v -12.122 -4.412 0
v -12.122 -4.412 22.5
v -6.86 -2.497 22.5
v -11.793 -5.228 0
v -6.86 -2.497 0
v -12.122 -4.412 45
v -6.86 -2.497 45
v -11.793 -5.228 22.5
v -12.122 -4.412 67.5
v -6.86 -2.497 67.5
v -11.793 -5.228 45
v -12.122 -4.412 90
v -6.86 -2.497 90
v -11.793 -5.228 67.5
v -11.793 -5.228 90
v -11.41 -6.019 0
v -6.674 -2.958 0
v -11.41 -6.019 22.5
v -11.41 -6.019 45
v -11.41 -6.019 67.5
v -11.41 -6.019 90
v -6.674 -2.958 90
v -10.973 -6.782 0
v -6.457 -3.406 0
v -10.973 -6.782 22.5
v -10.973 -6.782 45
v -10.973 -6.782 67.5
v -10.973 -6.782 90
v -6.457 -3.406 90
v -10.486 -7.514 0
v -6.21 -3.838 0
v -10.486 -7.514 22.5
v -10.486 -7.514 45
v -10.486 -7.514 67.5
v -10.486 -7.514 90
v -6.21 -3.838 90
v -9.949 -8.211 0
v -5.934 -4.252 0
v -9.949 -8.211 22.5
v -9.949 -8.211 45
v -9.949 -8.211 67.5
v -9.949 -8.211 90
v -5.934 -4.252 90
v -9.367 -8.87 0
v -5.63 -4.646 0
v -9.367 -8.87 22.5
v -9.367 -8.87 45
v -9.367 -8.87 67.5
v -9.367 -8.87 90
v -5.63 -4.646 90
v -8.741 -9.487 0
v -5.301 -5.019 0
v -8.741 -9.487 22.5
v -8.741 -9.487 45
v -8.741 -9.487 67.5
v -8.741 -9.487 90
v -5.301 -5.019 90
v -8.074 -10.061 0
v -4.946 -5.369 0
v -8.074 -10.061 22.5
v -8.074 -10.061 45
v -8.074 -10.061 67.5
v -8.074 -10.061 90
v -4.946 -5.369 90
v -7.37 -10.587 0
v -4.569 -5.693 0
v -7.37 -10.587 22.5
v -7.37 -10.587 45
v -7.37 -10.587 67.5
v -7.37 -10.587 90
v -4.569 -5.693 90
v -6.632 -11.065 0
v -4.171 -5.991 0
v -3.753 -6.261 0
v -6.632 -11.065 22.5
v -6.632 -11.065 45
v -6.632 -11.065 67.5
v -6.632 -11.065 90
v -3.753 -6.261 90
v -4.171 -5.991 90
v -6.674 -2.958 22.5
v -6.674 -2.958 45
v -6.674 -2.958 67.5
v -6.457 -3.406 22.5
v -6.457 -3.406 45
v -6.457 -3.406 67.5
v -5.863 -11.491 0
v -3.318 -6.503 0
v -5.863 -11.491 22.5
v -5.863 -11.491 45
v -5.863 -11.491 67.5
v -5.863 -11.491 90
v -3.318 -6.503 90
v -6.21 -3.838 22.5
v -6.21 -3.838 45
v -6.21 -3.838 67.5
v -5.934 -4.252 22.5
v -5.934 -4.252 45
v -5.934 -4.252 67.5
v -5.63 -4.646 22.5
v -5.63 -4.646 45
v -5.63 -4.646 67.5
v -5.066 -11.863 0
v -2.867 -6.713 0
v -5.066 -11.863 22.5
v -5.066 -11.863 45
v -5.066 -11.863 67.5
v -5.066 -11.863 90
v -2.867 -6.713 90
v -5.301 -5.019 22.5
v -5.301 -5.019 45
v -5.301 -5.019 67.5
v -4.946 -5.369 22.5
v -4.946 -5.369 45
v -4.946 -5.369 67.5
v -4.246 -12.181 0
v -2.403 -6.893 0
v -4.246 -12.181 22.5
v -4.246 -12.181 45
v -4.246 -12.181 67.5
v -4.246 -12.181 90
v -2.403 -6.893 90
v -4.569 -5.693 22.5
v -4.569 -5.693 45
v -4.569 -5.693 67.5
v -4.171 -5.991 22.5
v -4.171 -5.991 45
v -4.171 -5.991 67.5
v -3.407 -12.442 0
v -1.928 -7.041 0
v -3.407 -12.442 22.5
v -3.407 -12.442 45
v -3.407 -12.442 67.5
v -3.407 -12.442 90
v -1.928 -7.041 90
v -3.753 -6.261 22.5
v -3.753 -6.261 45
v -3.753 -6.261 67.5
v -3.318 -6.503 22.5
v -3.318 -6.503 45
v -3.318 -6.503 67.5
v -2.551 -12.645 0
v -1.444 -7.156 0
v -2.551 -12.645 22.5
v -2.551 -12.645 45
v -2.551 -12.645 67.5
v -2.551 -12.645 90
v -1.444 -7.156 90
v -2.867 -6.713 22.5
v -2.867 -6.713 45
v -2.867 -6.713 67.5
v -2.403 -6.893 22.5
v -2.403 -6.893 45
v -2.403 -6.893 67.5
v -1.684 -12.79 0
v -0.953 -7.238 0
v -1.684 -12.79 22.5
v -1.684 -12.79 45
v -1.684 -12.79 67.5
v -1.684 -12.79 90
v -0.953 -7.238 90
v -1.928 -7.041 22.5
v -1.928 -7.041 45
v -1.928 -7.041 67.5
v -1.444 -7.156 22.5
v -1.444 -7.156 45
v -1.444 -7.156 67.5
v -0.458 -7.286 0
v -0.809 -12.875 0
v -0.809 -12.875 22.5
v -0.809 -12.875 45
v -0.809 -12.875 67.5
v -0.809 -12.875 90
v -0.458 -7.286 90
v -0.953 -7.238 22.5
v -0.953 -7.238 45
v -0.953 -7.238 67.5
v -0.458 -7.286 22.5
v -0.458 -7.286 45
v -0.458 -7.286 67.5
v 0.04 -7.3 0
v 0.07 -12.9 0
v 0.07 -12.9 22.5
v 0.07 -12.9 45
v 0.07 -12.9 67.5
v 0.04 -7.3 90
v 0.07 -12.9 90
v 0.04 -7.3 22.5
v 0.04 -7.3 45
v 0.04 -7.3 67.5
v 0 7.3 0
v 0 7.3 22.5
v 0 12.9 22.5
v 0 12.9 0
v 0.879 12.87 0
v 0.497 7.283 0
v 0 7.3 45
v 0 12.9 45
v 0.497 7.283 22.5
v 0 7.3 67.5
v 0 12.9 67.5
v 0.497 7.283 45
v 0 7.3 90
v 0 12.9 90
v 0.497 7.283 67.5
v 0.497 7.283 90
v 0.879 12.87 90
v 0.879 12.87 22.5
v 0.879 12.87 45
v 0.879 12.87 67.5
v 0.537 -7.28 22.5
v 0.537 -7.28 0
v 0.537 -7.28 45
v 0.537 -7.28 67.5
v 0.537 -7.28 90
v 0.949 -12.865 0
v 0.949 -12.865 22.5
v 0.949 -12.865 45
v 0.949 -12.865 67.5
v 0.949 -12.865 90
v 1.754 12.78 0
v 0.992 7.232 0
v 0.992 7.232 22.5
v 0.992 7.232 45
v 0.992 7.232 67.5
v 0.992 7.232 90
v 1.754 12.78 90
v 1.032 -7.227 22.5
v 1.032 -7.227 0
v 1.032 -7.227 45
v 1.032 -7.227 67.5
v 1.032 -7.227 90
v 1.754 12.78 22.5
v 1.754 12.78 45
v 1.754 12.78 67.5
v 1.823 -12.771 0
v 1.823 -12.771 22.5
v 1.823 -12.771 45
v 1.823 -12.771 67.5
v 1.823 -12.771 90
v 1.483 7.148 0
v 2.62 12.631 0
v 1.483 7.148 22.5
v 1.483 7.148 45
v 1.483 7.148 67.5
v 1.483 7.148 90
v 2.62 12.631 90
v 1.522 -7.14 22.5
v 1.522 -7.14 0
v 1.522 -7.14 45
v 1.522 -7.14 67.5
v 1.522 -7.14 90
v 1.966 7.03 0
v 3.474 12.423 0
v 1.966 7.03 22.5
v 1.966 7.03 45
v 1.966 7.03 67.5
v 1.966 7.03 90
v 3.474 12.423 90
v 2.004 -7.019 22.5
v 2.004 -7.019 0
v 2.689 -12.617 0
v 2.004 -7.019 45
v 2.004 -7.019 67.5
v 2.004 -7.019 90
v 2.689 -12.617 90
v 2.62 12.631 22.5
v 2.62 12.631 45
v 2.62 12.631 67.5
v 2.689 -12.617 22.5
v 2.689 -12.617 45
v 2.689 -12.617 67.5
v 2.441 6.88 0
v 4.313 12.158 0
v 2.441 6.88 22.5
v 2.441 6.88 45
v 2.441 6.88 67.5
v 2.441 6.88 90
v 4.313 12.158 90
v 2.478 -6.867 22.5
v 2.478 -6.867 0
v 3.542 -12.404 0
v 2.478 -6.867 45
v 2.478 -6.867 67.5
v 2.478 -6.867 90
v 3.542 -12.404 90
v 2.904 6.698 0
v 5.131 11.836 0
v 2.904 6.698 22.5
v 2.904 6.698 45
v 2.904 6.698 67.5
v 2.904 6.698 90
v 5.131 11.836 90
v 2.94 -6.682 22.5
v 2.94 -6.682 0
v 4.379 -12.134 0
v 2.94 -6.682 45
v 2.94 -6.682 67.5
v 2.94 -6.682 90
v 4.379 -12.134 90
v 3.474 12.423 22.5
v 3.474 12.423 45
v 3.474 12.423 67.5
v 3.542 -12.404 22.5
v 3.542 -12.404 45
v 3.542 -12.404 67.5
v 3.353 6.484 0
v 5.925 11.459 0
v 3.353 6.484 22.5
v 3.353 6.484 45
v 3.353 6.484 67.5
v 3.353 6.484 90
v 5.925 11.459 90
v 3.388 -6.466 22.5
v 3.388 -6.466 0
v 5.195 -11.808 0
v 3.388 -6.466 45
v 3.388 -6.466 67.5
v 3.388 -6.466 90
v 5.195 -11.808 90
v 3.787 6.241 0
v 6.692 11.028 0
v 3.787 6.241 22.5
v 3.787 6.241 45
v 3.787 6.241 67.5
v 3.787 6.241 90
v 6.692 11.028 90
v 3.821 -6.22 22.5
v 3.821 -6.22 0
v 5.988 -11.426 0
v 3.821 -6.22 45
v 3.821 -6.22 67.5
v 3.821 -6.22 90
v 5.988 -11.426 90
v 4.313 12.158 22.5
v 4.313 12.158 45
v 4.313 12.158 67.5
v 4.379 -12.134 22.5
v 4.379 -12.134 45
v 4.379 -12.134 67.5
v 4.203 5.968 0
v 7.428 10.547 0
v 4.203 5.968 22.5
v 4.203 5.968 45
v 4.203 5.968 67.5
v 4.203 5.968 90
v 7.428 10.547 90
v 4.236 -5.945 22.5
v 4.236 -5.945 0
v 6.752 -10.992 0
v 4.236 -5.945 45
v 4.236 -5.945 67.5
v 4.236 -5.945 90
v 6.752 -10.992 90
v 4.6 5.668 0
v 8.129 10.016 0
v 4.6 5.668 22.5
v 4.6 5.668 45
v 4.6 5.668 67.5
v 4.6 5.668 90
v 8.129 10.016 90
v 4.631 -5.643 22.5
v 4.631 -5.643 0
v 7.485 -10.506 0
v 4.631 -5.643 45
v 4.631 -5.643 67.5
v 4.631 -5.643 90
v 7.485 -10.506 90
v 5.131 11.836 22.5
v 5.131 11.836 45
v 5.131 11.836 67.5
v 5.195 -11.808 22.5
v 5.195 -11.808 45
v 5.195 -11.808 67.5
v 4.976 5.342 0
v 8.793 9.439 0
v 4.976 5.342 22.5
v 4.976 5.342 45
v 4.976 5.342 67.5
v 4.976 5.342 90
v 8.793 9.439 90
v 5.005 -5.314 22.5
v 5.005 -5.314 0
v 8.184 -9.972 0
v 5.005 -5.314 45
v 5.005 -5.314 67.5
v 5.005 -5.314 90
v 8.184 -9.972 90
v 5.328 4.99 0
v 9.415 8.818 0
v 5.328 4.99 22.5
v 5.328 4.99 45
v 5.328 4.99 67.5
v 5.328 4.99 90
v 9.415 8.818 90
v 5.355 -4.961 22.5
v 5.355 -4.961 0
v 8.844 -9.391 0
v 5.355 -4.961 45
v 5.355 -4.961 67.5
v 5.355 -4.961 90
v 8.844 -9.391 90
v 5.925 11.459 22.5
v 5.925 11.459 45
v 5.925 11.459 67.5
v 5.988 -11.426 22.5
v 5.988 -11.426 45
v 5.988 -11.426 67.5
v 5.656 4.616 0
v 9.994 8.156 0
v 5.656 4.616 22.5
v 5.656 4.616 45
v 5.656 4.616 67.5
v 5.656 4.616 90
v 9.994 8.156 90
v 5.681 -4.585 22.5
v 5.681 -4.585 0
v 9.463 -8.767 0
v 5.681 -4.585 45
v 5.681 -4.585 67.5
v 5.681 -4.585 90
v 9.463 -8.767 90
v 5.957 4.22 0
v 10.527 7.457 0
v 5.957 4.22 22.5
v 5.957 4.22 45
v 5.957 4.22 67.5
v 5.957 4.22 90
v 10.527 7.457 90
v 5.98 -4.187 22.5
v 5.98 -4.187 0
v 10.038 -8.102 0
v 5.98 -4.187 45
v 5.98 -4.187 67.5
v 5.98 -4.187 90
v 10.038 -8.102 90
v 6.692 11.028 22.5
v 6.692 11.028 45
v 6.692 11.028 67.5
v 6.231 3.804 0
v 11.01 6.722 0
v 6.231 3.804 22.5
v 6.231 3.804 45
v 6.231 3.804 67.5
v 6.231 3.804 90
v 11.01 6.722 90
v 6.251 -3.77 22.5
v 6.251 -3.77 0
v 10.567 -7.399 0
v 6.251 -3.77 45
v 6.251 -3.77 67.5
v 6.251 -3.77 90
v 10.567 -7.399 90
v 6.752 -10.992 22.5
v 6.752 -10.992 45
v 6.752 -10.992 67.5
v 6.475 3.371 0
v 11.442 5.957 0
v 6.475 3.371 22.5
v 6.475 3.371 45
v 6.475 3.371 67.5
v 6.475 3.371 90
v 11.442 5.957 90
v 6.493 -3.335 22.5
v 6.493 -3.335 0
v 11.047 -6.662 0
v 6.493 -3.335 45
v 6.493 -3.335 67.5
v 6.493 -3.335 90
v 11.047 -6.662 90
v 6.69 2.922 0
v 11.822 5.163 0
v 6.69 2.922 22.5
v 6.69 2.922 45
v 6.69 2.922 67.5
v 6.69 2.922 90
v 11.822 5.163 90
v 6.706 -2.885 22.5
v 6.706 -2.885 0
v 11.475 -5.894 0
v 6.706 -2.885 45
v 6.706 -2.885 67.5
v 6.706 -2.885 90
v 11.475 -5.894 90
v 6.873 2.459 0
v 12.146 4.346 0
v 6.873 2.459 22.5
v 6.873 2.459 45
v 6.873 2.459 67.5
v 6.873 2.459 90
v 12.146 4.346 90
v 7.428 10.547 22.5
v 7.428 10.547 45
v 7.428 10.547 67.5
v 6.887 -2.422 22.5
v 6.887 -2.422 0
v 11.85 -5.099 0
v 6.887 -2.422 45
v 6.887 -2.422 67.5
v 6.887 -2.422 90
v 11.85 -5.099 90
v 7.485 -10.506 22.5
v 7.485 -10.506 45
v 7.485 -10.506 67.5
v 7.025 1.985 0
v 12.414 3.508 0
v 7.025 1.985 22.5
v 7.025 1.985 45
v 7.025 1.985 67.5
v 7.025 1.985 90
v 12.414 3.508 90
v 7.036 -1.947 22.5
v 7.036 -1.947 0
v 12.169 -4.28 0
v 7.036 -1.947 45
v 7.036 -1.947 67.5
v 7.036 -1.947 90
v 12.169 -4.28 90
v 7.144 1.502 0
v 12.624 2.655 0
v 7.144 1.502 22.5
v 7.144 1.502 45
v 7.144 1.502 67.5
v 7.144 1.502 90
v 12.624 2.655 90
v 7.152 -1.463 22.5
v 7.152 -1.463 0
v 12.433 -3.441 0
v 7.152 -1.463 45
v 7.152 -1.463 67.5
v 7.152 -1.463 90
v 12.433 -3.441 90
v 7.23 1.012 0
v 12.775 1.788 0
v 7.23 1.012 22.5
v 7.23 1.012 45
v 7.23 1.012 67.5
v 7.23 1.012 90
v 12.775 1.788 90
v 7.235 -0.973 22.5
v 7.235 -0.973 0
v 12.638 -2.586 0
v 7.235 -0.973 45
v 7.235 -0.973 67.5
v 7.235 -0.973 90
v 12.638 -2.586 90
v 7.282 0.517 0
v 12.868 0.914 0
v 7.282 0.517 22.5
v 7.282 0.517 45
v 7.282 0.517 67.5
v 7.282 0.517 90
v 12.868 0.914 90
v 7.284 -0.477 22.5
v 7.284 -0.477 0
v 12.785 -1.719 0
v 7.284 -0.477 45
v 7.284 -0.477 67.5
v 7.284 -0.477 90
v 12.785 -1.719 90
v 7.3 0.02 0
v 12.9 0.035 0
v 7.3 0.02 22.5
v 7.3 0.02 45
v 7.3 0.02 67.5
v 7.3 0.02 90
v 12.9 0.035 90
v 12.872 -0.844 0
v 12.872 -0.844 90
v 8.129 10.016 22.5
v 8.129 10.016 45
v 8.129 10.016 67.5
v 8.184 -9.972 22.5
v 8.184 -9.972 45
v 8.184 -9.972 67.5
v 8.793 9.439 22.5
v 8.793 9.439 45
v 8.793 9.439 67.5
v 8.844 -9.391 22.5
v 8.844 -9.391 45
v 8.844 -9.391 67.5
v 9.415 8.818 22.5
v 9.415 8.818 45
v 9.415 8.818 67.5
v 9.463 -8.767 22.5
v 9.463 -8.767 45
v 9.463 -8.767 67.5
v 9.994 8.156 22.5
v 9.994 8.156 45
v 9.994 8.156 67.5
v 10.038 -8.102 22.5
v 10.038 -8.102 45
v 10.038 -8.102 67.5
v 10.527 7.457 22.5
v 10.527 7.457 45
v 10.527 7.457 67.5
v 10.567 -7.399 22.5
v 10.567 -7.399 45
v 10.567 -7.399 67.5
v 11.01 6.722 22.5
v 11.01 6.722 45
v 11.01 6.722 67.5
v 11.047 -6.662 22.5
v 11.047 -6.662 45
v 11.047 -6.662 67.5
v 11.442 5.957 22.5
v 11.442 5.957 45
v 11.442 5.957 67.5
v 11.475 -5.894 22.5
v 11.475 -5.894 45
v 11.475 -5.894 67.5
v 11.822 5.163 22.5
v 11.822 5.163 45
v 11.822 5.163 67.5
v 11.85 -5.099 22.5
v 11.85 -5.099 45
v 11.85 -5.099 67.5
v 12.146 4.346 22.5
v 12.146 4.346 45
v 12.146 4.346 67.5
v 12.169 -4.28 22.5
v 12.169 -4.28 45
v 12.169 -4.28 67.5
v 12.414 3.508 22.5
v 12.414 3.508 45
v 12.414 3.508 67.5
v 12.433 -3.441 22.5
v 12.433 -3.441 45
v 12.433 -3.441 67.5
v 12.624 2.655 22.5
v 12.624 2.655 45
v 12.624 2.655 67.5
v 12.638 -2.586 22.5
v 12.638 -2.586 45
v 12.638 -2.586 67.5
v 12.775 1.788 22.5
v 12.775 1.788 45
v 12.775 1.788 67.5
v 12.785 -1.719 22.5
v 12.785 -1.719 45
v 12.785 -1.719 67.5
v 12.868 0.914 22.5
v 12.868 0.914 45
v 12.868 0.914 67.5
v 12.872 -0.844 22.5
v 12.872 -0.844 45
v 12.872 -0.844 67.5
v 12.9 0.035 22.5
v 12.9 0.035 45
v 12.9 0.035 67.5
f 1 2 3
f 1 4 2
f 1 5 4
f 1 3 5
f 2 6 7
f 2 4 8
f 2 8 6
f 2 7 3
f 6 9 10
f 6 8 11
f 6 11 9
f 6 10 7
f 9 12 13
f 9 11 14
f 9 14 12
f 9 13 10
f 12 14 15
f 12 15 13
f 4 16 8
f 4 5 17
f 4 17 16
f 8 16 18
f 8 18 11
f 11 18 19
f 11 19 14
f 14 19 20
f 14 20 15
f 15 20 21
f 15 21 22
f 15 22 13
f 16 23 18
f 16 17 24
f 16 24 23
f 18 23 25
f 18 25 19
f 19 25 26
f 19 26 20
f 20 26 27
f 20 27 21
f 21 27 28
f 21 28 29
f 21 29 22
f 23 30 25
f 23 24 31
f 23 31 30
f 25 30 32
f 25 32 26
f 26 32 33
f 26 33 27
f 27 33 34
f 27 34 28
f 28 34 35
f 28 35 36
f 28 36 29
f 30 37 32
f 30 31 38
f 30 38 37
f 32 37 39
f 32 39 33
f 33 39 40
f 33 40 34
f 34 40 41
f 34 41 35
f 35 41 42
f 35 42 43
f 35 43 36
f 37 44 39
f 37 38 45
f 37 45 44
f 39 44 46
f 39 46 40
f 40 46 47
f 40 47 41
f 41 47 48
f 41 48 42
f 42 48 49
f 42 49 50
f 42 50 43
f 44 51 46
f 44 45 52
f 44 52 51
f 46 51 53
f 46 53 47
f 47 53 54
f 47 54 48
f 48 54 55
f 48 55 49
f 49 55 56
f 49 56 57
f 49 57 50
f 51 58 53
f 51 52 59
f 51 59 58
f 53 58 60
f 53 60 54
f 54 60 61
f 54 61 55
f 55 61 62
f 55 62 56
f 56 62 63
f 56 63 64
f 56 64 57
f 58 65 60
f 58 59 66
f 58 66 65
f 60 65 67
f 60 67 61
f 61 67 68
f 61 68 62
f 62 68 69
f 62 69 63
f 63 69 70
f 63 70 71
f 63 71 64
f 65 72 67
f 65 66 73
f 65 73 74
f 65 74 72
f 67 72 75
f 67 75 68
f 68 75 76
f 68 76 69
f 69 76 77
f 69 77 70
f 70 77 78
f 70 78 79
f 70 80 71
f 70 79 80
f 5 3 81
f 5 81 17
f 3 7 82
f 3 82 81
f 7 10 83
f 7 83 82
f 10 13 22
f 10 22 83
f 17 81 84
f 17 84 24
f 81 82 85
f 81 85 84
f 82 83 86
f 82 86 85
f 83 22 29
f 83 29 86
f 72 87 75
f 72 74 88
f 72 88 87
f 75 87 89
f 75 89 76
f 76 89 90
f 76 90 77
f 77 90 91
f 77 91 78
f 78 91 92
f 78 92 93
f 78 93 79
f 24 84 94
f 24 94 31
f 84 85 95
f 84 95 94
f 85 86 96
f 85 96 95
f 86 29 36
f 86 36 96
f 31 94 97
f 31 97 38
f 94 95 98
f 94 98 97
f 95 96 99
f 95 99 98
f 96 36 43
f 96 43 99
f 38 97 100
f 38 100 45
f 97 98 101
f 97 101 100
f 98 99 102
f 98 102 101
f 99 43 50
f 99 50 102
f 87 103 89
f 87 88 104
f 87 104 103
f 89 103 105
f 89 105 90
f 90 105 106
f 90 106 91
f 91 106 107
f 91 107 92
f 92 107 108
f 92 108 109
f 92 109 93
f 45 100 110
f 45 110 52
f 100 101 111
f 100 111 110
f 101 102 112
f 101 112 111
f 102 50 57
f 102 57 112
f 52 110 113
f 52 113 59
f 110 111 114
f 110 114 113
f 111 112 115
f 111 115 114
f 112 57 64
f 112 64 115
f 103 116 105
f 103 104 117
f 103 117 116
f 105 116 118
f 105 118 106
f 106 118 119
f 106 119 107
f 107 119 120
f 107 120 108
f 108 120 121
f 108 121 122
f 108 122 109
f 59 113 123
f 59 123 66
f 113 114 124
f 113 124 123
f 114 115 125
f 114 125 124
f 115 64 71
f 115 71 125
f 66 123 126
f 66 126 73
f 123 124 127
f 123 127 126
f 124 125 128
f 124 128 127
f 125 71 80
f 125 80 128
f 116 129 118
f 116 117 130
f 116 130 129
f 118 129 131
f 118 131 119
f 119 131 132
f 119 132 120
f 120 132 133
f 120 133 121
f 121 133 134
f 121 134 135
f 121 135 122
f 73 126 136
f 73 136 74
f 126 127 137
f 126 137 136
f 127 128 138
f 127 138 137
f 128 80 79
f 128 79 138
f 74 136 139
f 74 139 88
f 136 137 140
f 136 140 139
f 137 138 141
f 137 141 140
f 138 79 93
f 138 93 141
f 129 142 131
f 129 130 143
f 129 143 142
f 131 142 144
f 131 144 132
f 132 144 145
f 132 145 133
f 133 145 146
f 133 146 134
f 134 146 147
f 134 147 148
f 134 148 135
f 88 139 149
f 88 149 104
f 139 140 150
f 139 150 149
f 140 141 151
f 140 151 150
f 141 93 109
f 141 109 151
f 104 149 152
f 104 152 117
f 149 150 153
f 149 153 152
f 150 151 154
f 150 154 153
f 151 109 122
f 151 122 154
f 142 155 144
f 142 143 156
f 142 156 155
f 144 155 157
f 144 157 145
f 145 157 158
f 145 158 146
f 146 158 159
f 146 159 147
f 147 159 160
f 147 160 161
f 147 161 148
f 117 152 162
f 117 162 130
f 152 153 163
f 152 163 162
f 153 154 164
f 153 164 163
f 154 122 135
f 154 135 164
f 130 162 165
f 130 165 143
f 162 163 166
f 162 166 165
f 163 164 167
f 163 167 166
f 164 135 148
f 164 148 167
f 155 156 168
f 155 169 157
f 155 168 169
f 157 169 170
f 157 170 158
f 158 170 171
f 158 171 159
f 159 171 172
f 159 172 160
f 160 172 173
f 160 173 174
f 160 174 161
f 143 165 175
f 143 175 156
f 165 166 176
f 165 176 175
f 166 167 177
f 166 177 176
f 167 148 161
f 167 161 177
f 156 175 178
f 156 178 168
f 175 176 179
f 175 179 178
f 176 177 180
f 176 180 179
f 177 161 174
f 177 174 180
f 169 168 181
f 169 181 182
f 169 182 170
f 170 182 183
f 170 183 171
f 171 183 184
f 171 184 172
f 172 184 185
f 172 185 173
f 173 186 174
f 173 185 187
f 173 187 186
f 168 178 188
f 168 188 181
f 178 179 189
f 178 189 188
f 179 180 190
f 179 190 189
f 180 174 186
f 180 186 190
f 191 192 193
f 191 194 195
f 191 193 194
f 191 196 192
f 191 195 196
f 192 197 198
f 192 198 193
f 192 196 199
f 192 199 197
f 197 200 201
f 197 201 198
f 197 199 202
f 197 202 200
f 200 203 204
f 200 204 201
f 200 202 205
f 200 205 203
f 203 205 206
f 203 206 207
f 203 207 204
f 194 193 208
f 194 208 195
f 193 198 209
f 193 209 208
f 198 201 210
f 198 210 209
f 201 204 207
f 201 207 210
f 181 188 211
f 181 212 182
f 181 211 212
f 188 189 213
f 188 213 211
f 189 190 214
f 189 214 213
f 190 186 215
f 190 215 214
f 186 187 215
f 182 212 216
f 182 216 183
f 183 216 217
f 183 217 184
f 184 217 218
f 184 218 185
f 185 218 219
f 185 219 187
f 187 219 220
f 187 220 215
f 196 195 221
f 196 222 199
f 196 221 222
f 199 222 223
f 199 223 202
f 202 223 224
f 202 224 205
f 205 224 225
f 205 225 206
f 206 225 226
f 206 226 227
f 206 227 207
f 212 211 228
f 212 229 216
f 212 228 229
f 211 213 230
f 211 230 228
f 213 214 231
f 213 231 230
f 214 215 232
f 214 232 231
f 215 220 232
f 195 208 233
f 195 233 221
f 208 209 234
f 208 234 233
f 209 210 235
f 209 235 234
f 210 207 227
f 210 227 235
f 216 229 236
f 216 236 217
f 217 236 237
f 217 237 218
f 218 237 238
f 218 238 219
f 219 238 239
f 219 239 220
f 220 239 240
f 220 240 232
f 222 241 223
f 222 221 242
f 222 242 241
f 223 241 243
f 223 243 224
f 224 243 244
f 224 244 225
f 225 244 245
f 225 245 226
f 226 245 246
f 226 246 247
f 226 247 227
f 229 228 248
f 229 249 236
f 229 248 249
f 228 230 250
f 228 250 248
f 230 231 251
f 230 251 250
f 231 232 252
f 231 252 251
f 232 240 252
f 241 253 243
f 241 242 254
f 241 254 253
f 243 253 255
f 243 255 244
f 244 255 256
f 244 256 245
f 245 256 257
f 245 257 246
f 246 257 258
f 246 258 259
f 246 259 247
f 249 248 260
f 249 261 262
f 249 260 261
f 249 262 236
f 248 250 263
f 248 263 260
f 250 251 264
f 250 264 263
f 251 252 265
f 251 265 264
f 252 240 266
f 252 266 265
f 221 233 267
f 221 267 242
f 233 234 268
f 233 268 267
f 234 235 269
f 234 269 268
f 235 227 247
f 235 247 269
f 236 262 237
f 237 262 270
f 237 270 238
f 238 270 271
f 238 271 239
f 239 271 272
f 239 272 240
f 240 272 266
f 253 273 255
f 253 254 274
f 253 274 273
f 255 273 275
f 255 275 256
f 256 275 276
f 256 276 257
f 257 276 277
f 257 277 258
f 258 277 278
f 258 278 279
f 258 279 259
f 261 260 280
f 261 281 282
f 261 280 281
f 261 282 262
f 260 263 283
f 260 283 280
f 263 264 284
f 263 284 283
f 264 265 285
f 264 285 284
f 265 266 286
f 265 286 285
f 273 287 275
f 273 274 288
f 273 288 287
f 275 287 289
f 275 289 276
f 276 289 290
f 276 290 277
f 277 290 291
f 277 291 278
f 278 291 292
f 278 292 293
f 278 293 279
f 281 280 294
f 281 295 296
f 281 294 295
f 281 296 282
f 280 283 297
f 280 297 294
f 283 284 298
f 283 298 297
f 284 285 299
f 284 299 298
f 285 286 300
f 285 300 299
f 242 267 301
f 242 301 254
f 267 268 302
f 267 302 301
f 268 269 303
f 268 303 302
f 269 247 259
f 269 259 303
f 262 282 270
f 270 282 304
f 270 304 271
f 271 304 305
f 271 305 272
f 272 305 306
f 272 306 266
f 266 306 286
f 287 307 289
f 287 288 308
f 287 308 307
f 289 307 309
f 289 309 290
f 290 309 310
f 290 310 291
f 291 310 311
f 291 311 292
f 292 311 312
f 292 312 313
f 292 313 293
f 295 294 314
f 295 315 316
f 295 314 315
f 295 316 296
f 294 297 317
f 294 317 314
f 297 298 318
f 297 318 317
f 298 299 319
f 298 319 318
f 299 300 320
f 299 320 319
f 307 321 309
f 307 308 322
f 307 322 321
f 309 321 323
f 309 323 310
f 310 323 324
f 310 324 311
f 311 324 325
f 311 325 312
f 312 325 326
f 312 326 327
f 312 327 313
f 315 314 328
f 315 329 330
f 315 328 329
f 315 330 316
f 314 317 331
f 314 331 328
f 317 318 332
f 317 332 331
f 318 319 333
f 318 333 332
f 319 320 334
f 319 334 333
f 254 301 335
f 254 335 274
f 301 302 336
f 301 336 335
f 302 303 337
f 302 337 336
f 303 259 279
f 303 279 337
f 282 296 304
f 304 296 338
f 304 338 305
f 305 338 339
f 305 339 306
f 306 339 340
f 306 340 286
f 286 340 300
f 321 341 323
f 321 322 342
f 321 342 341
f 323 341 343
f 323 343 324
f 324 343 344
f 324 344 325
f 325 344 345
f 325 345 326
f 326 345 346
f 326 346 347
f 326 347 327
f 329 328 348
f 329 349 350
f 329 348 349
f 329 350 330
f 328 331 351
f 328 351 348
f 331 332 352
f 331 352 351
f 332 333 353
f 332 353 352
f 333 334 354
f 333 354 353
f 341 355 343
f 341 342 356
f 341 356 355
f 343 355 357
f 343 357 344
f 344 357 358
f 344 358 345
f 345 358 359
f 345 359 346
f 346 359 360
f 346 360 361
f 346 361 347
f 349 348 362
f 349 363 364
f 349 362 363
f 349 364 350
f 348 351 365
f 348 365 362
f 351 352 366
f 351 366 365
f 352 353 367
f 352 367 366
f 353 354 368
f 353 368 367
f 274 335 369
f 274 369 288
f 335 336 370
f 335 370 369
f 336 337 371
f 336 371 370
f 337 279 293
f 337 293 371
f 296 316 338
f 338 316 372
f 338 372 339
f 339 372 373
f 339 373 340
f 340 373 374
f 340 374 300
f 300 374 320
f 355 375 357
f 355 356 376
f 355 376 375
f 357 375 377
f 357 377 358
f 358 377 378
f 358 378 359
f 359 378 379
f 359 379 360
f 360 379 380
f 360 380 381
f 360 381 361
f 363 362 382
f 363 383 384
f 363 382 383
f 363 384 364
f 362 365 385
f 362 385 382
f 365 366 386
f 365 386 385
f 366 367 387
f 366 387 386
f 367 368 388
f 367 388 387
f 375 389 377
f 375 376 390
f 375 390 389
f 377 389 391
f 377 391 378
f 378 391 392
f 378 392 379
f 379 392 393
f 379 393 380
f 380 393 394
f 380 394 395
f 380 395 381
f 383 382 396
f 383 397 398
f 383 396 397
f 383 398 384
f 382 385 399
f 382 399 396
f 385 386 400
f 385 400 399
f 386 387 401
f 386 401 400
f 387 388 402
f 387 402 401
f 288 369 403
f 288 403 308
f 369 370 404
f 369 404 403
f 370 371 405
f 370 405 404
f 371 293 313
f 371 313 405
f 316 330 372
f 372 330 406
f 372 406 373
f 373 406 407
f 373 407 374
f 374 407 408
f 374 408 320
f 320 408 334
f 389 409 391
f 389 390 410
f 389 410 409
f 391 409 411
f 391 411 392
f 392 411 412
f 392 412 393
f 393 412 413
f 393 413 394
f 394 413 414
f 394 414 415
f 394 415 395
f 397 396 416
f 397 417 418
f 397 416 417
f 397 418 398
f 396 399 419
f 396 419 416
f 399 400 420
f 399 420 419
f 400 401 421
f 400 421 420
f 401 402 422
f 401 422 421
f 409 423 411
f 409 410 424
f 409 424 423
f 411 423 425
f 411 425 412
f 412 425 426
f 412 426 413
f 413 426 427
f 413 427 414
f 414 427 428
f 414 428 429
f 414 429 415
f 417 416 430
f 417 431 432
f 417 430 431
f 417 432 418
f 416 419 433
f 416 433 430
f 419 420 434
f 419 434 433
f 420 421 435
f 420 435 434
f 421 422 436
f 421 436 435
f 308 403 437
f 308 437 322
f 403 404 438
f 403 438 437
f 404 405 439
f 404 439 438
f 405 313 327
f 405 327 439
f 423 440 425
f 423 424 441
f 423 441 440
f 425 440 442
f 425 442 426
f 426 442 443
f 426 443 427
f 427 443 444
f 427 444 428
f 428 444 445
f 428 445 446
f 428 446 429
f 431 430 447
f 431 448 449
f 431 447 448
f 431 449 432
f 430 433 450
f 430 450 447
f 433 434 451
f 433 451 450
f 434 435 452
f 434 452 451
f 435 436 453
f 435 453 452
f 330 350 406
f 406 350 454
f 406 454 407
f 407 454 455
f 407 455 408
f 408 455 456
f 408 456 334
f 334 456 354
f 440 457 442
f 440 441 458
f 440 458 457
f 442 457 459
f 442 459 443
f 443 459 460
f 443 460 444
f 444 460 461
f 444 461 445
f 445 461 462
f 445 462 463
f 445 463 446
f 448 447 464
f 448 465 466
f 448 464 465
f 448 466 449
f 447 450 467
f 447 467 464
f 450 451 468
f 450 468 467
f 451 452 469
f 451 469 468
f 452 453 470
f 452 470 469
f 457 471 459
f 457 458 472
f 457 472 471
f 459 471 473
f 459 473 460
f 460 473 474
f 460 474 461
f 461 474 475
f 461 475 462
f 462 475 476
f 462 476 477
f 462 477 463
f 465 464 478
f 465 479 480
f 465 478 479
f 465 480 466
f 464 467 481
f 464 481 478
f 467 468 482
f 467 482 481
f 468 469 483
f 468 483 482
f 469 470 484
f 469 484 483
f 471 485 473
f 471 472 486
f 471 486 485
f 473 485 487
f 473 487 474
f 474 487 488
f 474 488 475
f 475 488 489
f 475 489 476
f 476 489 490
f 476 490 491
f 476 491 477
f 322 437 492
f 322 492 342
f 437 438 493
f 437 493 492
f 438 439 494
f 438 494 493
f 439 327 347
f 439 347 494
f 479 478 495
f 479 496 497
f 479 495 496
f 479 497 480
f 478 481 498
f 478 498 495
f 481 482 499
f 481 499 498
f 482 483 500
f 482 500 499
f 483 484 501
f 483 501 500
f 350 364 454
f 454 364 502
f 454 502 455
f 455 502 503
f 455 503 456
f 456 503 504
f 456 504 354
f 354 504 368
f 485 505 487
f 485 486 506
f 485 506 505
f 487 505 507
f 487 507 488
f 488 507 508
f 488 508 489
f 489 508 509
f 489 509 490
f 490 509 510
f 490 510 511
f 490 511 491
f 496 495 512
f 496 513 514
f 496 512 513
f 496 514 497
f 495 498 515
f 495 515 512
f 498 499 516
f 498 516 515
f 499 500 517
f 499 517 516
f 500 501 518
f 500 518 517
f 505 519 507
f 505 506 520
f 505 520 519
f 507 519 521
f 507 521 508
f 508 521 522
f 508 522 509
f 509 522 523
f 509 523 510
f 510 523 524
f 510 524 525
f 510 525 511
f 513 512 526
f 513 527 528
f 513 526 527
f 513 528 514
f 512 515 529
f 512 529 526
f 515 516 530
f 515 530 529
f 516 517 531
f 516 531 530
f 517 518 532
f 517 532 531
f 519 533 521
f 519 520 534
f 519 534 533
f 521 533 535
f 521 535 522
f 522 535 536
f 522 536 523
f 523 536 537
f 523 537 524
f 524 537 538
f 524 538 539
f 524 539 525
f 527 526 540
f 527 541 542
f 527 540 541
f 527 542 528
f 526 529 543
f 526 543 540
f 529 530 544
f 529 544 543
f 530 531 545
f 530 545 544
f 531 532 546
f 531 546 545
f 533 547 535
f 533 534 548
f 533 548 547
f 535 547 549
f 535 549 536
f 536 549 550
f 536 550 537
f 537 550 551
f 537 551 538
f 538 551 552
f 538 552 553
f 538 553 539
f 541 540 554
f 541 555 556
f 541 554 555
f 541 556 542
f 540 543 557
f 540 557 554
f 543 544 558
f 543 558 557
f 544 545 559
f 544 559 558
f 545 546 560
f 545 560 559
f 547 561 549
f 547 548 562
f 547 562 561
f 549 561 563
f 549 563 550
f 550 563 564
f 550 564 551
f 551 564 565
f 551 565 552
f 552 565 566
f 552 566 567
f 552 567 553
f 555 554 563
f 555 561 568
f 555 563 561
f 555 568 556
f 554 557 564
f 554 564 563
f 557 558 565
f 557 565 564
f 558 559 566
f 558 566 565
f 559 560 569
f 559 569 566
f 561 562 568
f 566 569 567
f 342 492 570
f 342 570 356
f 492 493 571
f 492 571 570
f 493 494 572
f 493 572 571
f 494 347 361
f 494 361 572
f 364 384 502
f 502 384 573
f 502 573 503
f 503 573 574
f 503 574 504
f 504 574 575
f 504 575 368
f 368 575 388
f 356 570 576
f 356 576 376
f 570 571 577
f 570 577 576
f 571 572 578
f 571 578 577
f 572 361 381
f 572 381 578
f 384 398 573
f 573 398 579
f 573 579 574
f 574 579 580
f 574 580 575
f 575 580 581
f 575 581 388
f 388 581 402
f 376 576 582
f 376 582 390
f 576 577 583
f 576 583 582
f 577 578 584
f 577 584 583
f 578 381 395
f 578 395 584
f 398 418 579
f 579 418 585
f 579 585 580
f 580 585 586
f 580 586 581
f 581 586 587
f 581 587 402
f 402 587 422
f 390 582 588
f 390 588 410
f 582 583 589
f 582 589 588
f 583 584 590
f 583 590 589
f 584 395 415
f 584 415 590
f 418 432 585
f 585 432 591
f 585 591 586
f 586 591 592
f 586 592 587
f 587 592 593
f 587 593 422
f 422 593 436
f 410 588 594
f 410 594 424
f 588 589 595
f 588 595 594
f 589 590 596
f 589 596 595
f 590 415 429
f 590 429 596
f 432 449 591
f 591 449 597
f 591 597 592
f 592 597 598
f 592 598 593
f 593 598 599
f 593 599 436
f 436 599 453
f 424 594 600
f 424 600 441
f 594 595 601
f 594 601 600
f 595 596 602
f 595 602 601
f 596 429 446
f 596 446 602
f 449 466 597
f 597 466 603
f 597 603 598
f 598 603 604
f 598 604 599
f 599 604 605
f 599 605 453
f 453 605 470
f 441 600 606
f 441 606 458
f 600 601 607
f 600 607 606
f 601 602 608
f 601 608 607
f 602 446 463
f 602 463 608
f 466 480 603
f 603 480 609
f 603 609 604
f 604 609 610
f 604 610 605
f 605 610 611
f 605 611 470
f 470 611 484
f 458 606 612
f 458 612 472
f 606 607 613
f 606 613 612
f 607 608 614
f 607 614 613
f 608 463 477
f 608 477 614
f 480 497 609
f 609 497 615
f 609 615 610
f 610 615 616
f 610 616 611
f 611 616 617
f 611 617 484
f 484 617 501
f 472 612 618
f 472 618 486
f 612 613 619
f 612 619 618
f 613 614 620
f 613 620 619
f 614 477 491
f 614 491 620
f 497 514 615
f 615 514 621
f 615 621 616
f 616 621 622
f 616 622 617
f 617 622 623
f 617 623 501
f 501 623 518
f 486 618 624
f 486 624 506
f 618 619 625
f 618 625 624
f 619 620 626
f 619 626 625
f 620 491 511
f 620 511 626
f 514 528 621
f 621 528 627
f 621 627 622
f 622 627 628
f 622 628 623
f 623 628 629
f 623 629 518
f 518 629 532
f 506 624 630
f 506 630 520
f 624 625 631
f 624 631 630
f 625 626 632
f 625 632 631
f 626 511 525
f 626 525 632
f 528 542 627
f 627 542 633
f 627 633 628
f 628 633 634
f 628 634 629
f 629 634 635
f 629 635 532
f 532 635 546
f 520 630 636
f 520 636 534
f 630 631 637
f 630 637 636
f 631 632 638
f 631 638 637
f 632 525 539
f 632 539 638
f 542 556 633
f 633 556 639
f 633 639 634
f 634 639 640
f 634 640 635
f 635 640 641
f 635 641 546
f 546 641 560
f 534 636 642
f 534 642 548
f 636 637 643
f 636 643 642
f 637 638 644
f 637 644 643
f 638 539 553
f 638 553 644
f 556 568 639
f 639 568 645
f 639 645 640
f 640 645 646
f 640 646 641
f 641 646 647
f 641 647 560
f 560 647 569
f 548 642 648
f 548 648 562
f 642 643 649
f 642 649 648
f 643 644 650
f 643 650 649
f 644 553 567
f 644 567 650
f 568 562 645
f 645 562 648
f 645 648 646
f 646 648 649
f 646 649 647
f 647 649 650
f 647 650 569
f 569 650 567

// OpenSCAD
// Start: lazy_union
default_5_default_5();
// End: lazy_union

// Modules.

// 'PartMaterial undef-default - default 5.0'
module default_5_default_5() {
  // 'None : _combine_solids_and_holes'
  union() {
    // 'default : _combine_solids_and_holes'
    union() {
      // 'adapter : _combine_solids_and_holes'
      union() {
        // 'adapter'
        linear_extrude(height=90.0, twist=0.0, slices=4, scale=[1.0, 1.0], $fn=64) {
          polygon(points=[[0.0, 7.3], [0.0, 12.9], [0.8788011574509034, 12.870031411215086], [1.753519147380663, 12.780264887699683], [2.6200897738601423, 12.631117511008815], [3.474486695996615, 12.423282263530139], [4.312740135492629, 12.157724808684849], [5.130955321398444, 11.835679004172638], [5.9253305863584025, 11.458641169107514], [6.692175030270725, 11.028363131681012], [7.427925669290204, 10.54684408965543], [8.129163990494508, 10.016321321505586], [8.792631835296289, 9.43925979136787], [9.41524653780208, 8.818340696095039], [9.99411524778074, 8.156449007630497], [10.526548371692767, 7.456660068583812], [11.01007206932948, 6.722225303288403], [11.442439747999058, 5.956557110731939], [11.821642500854074, 5.163213009551383], [12.145918440860967, 4.345879108759641], [12.41376088704317, 3.508352981003652], [12.623925364962105, 2.654526017929833], [12.775435388909877, 1.7883653496389258], [12.867586998947806, 0.9138954122378634], [12.89995203171045, 0.03517924913109632], [12.872380109777986, -0.8437003670688447], [12.78499934037373, -1.718659904298493], [12.63821572014047, -2.585634044329223], [12.432711248761176, -3.4405945714261863], [12.169440760188746, -4.27956908861824], [11.849627486207872, -5.098659474617511], [11.474757372941946, -5.894059995632422], [11.046572176712237, -6.662074987921334], [10.567061371327997, -7.399136028928491], [10.038452904408516, -8.101818517220208], [9.463202845686093, -8.766857584185946], [8.843983975386836, -9.391163263573945], [8.183673365711032, -9.971834848379304], [7.485339013113202, -10.506174368378124], [6.752225583492163, -10.991699125687253], [5.987739336523119, -11.426153230105646], [5.195432299177717, -11.807518080640866], [4.378985761966583, -12.134021744520401], [3.542193174585631, -12.404147190110208], [2.6889425204378736, -12.616639335487926], [1.8231982519240277, -12.770510879921021], [0.948982870435713, -12.865046891155105], [0.0703582366360836, -12.899808127198538], [-0.8085933021343022, -12.874633077169367], [-1.683787879638663, -12.789638711722155], [-2.551159085582411, -12.645219939568086], [-3.4066768593462027, -12.442047772613442], [-4.246366214827694, -12.181066208241786], [-5.066325709391002, -11.863487843225691], [-5.862745571111641, -11.490788239647046], [-6.631925400092554, -11.064699069003513], [-7.370291361605623, -10.587200066355672], [-8.074412791174359, -10.060509831898178], [-8.74101813444567, -9.487075522693596], [-9.367010147789433, -8.869561482464047], [-9.949480288999363, -8.21083686227008], [-10.48572223123183, -7.513962289594658], [-10.973244437392887, -6.782175647771595], [-11.409781736549197, -6.018877031831468], [-11.793305848575544, -5.227612950664375], [-12.122034808138217, -4.4120598489011345], [-6.8597561317371305, -2.496747046277387], [-6.673731216635773, -2.95826159223643], [-6.456698192000708, -3.4060311885557955], [-6.20966545681923, -3.837975366568425], [-5.933780797518789, -4.2520871871349595], [-5.630326055015146, -4.646442565470664], [-5.300711168904098, -5.019209211006786], [-4.946467626469255, -5.368655140749089], [-4.569241346943629, -5.69315672657804], [-4.170785034086906, -5.991206239100495], [-3.752950032610516, -6.261418853001989], [-3.3176777262879833, -6.502539081350655], [-2.866990517717388, -6.713446608957176], [-2.402982431646681, -6.893161497687212], [-1.9278093855214953, -7.040848739540941], [-1.4436791724613651, -7.155822136344732], [-0.9528412032063743, -7.2375474880288175], [-0.45757605469615636, -7.285645074677239], [0.039815126158403, -7.2998914208177785], [0.5370213142775747, -7.280220333754439], [1.031732344112044, -7.226723211118098], [1.5216496433485633, -7.139648616206347], [2.004496912750007, -7.019401123085623], [2.478030702508222, -6.866539436821624], [2.9400508359687842, -6.681773797571964], [3.3884106322960275, -6.465962680602421], [3.821026880580836, -6.220108807559454], [4.235889519048554, -5.945354487531809], [4.631070974394613, -5.642976309547979], [5.004735117854565, -5.314379211169753], [5.3551457963960045, -4.9610899507408845], [5.680674899393965, -4.584750013620739], [5.97980992330964, -4.187107985362635], [6.251160999224753, -3.7700114272733134], [6.49346735057955, -3.335398292102069], [6.705603151109879, -2.8852879197447936], [6.8865827557657235, -2.42177165479947], [7.0355652803067095, -1.947003129566759], [7.151858508296545, -1.463188257643668], [7.234922107343272, -0.972574984603024], [7.284370139641804, -0.4774428433800447], [7.299972855153975, 0.019907637105194772], [7.281657759094493, 0.51716562087879], [7.229509948762952, 1.0120207017336547], [7.143771718156849, 1.5021736380533137], [7.024841432202721, 1.9853470357617573], [6.87327167583605, 2.4592959297632064], [6.689766686529823, 2.9218182147073706], [6.4751790822010165, 3.370764876615749], [6.230505899698077, 3.804049977829871], [5.956883962275751, 4.219660348888513], [5.655584597581349, 4.615664942302527], [5.328007730694198, 4.990223804766961], [4.97567537966379, 5.341596626122903], [4.600224583768209, 5.668150825348121], [4.20339979735027, 5.968369136006559], [3.7870447845718047, 6.240856655912509], [3.3530940527454516, 6.484347328254638], [2.9035638640471806, 6.697709824066685], [2.440542867371798, 6.879952798713129], [1.9661823938585519, 7.0302294979666655], [1.4826864611766655, 7.147841692276305], [0.992301533013861, 7.232242920946331], [0.49730608134818305, 7.283041031152721]]);
        }
      }
    }
  }
} // end module default_5_default_5
